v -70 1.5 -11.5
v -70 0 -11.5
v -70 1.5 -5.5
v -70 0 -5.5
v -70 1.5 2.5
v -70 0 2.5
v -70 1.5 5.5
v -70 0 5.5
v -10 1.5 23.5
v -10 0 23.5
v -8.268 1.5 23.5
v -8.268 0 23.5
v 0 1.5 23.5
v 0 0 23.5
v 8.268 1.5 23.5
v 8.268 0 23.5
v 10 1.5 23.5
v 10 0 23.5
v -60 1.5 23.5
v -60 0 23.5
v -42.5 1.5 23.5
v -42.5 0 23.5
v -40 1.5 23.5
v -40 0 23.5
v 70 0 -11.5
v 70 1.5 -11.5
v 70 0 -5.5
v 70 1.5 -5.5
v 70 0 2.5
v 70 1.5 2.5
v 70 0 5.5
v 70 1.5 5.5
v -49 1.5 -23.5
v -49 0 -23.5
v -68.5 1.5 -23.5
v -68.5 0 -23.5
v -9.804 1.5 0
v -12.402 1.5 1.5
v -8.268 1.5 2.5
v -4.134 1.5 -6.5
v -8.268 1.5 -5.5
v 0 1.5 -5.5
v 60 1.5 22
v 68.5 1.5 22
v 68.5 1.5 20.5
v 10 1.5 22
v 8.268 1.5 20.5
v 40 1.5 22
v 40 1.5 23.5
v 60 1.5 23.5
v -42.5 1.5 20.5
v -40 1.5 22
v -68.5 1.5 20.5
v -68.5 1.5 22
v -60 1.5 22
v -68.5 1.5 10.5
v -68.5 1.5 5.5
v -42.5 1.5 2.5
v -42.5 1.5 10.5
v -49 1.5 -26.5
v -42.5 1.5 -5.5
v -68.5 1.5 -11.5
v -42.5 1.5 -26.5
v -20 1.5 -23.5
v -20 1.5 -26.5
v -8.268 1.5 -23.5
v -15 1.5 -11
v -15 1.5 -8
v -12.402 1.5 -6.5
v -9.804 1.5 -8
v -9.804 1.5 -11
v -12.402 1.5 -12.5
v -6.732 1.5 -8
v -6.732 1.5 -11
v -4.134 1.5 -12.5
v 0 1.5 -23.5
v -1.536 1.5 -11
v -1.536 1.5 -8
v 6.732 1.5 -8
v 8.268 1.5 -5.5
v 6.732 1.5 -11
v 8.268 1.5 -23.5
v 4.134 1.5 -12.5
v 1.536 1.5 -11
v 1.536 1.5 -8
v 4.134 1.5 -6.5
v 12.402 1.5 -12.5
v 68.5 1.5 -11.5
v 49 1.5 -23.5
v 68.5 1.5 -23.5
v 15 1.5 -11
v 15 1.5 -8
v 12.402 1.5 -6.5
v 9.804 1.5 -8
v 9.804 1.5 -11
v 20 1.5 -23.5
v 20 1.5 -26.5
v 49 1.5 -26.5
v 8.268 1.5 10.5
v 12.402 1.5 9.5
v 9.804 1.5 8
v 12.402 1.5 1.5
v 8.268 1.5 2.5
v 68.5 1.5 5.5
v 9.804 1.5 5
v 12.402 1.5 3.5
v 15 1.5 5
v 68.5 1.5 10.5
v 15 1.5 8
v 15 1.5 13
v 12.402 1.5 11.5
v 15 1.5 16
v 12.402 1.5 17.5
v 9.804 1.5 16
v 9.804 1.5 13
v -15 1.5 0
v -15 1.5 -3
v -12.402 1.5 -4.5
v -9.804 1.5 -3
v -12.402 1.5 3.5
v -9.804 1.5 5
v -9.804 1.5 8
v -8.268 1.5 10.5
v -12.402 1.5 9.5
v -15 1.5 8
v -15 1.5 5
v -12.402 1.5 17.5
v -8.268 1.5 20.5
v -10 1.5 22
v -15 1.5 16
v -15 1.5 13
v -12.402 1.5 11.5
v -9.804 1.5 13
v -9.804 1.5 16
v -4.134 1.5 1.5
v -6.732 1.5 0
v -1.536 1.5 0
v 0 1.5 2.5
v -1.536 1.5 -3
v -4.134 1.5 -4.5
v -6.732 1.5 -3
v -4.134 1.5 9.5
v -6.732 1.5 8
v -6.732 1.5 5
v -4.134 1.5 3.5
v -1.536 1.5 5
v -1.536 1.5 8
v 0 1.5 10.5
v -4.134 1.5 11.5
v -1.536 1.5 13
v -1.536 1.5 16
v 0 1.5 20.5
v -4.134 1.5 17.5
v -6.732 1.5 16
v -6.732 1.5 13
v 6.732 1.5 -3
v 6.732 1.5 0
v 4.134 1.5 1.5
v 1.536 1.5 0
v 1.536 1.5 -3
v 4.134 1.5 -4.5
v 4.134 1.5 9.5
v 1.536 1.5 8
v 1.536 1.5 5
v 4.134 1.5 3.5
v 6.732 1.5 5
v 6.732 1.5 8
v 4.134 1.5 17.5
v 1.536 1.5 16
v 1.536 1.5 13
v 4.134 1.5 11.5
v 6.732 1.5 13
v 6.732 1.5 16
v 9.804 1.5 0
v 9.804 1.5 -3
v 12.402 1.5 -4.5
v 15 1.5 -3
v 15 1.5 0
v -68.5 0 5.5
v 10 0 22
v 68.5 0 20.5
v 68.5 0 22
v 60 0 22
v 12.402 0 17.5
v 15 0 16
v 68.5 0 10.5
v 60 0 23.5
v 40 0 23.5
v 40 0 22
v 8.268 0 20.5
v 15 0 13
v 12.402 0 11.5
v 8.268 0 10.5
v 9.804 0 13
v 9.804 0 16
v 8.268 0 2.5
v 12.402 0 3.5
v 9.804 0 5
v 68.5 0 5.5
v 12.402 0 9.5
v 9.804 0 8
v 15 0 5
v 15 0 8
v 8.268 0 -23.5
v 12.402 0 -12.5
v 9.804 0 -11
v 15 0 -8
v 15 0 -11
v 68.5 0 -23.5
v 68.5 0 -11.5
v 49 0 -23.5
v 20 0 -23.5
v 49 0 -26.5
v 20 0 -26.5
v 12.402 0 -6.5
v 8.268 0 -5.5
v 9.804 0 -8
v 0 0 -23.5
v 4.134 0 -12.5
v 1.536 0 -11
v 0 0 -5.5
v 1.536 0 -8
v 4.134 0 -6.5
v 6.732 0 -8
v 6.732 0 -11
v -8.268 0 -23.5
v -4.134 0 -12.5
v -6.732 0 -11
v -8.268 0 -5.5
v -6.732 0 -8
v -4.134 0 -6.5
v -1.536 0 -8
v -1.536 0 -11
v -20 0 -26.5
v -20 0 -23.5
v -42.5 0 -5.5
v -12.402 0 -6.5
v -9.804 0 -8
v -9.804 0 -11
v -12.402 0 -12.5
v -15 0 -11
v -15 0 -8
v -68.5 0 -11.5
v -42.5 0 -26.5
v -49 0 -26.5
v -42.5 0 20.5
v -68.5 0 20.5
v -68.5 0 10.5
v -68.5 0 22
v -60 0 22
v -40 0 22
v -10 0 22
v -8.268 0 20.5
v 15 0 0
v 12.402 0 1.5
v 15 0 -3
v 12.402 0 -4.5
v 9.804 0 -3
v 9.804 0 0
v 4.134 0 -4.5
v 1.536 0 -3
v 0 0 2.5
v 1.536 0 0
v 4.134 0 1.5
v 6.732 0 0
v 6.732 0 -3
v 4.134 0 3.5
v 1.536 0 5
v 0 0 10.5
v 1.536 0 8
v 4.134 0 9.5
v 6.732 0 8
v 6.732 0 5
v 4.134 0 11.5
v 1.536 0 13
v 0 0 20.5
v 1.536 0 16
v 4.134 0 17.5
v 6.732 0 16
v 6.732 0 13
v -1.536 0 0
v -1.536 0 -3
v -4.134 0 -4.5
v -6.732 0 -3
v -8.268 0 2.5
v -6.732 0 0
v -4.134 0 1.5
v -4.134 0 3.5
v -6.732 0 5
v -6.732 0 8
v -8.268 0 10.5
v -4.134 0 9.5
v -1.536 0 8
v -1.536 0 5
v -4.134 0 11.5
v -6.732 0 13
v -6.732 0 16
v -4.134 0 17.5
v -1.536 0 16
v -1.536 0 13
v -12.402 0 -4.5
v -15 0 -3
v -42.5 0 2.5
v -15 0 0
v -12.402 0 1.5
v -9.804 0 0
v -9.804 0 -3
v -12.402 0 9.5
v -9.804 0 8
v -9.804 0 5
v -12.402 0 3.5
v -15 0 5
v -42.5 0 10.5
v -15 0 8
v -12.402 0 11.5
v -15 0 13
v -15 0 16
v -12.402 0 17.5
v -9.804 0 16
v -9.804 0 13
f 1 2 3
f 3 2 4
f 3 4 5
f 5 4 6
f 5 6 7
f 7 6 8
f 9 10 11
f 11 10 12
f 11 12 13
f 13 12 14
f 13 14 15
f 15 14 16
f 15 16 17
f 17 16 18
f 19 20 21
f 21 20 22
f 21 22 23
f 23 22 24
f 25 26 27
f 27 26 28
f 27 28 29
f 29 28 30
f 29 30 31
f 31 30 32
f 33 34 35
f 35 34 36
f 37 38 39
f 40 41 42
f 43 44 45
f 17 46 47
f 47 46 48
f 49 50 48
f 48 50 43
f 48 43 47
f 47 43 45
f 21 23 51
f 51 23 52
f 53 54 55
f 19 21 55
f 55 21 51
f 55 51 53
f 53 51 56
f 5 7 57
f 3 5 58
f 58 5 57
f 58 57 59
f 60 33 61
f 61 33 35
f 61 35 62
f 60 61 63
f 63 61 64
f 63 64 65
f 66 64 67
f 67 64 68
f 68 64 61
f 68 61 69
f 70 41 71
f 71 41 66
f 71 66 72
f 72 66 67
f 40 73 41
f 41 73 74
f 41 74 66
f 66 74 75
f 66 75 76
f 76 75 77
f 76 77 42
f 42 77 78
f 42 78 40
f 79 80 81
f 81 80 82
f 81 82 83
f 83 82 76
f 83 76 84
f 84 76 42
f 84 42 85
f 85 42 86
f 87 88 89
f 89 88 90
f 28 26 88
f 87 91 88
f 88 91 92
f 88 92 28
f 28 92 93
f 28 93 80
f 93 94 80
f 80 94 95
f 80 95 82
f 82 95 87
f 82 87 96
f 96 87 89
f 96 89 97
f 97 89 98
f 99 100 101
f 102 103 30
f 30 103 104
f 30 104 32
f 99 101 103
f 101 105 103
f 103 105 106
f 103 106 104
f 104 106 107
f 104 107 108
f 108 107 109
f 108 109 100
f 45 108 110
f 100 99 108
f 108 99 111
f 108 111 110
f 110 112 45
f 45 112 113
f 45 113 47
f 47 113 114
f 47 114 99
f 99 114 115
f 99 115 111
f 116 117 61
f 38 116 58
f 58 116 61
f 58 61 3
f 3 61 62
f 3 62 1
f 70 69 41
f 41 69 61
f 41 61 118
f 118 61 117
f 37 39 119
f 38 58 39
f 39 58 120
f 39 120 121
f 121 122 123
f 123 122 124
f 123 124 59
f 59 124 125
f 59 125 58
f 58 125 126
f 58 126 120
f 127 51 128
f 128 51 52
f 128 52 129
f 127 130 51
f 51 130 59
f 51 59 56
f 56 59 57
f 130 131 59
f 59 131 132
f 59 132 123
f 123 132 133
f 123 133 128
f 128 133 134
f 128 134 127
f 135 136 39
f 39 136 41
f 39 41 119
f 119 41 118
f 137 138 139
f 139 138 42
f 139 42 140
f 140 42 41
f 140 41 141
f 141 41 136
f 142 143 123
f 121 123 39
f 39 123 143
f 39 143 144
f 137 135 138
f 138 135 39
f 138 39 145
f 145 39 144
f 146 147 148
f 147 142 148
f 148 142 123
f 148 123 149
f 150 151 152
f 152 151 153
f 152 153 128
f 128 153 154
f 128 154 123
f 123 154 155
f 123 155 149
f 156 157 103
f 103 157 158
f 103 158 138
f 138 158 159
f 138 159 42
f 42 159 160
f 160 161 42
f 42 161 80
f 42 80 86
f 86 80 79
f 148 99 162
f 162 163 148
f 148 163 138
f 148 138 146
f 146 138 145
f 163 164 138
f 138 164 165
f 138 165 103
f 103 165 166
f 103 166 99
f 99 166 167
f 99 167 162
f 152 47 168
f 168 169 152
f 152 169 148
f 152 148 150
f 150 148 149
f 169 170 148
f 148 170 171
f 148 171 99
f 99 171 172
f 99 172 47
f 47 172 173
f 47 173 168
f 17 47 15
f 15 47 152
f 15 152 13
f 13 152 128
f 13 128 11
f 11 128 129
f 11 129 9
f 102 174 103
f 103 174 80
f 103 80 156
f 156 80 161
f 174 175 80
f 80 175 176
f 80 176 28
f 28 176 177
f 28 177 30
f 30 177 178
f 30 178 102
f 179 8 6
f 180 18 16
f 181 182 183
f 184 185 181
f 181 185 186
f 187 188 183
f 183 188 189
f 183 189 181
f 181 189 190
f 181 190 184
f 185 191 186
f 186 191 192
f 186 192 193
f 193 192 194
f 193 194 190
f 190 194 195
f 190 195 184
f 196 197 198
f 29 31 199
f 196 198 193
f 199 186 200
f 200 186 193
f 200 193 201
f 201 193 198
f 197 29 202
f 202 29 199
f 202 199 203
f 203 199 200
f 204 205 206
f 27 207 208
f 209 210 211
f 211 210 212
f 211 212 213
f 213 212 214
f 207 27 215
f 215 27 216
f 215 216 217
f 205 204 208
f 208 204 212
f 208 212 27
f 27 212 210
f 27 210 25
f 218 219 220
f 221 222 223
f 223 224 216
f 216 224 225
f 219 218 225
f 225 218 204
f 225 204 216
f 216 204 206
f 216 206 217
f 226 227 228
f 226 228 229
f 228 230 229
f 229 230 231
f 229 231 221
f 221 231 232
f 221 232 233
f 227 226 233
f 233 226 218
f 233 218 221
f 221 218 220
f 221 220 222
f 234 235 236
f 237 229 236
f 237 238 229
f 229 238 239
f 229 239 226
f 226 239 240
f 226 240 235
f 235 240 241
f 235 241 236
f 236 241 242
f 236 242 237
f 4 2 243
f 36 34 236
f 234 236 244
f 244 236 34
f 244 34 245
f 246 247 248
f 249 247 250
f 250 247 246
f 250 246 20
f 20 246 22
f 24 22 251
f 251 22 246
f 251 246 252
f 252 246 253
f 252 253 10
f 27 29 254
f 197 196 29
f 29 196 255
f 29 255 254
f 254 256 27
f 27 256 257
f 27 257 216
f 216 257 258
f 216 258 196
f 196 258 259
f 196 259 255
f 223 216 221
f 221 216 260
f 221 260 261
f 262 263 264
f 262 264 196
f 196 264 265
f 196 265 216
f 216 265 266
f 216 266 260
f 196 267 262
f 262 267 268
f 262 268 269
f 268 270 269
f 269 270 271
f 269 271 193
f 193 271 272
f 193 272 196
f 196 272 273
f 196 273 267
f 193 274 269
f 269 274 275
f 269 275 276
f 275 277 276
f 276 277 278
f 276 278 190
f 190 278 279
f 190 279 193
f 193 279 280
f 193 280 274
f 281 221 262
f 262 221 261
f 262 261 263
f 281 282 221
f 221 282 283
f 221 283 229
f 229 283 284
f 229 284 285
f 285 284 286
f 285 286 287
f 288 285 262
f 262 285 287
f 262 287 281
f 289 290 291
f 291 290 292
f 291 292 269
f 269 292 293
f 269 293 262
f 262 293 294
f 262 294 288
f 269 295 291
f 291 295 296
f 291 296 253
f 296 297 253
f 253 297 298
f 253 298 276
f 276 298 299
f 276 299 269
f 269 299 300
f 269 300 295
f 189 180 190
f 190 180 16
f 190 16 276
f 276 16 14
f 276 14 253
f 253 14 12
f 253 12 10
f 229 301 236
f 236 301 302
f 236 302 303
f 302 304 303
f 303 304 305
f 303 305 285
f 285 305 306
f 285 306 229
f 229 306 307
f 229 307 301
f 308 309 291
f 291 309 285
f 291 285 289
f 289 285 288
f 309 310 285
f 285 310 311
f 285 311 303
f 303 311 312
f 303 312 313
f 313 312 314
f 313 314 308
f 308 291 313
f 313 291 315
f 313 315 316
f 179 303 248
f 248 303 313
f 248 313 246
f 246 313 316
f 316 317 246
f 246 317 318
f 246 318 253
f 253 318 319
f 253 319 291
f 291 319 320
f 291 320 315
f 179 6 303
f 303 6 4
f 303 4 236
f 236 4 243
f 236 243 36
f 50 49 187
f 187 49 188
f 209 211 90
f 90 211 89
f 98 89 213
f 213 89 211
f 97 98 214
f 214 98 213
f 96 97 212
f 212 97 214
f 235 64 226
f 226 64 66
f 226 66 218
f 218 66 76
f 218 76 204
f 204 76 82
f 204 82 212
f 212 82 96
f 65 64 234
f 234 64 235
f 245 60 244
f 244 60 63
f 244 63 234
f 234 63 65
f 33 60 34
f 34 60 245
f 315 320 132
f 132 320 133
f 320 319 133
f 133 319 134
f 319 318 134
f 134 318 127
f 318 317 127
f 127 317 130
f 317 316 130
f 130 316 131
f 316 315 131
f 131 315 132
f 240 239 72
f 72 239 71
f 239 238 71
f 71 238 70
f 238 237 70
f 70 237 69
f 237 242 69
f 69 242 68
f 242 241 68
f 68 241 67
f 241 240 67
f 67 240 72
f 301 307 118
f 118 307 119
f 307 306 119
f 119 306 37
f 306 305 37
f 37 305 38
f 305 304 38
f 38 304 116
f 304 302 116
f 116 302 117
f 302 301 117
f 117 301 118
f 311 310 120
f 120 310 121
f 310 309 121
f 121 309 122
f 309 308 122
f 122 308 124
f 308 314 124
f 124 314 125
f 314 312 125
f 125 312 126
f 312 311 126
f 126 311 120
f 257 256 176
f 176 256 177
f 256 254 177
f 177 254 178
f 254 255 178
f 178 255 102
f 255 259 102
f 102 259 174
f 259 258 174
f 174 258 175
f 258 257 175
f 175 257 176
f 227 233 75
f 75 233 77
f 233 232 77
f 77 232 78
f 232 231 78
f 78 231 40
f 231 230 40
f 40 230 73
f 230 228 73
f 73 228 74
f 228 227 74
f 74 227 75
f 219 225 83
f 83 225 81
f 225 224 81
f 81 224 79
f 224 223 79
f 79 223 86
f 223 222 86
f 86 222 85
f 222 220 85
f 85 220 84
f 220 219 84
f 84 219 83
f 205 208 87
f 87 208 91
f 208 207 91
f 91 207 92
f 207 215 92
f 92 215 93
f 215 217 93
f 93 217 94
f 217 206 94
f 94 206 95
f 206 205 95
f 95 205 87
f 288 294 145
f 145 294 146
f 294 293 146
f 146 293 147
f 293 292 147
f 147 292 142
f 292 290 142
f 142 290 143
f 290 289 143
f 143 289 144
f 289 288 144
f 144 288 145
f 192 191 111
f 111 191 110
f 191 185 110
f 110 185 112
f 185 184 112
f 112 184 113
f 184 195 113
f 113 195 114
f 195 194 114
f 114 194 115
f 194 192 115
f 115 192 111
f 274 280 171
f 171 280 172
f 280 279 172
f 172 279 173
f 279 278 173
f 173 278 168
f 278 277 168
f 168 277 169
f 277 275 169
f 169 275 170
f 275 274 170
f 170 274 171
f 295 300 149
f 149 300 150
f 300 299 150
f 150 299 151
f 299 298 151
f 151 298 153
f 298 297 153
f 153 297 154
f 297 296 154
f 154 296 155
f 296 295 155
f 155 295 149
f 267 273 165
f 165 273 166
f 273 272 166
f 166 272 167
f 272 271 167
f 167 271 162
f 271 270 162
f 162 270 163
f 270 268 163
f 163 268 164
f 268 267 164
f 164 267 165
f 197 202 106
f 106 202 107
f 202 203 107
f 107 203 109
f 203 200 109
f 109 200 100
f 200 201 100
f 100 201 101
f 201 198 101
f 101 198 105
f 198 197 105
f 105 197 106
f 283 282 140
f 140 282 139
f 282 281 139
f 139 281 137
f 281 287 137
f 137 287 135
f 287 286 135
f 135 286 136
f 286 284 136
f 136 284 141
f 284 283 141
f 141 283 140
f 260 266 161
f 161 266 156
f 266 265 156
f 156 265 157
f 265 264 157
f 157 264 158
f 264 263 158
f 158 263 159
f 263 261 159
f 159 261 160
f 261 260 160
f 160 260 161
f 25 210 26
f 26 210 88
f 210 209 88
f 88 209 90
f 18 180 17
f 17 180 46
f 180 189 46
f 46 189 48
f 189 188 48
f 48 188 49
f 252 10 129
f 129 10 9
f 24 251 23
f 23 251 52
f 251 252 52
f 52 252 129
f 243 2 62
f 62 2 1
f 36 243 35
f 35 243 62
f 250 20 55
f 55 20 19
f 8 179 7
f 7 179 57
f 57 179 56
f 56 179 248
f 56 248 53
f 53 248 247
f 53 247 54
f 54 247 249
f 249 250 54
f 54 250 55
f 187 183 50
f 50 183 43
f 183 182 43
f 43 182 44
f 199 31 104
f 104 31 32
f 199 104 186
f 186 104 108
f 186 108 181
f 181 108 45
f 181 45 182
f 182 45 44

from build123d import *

# Parameters (mm, degrees)
BOSS_EXTRUDE1_DEPTH = 1.5
CUT_EXTRUDE1_DEPTH  = 75.863208587
SKETCH6_W           = 1.5
SKETCH6_H           = 12
SKETCH6_H_2         = 16.5
SKETCH6_H_3         = 1.5
SKETCH6_W_2         = 8.5
SKETCH6_W_3         = 30
CUT_EXTRUDE2_DEPTH  = 75.863208587


with BuildPart() as part:
    # Sketch2 → Boss-Extrude1 (new body)
    with BuildSketch(Plane(origin=(0, 0, 0), x_dir=(1, 0, 0), z_dir=(0, 1, 0))):
        Polygon((-70, 23.5), (-49, 23.5), (-49, 26.5), (-20, 26.5), (-20, 23.5), (20, 23.5), (20, 26.5), (49, 26.5), (49, 23.5), (70, 23.5), (70, -23.5), (-70, -23.5), align=None)
    extrude(amount=BOSS_EXTRUDE1_DEPTH)

    # Sketch5 → Cut-Extrude1 (cut, through all)
    with BuildSketch(Plane(origin=(0, 1.5, 0), x_dir=(1, 0, 0), z_dir=(0, 1, 0))):
        Polygon((-4.133974596, -11.5), (-6.732050808, -13), (-6.732050808, -16), (-4.133974596, -17.5), (-1.535898385, -16), (-1.535898385, -13), align=None)
        Polygon((-12.401923789, -11.5), (-15, -13), (-15, -16), (-12.401923789, -17.5), (-9.803847577, -16), (-9.803847577, -13), align=None)
        Polygon((4.133974596, -11.5), (1.535898385, -13), (1.535898385, -16), (4.133974596, -17.5), (6.732050808, -16), (6.732050808, -13), align=None)
        Polygon((12.401923789, -11.5), (9.803847577, -13), (9.803847577, -16), (12.401923789, -17.5), (15, -16), (15, -13), align=None)
        Polygon((-4.133974596, -3.5), (-6.732050808, -5), (-6.732050808, -8), (-4.133974596, -9.5), (-1.535898385, -8), (-1.535898385, -5), align=None)
        Polygon((4.133974596, -3.5), (1.535898385, -5), (1.535898385, -8), (4.133974596, -9.5), (6.732050808, -8), (6.732050808, -5), align=None)
        Polygon((12.401923789, -3.5), (9.803847577, -5), (9.803847577, -8), (12.401923789, -9.5), (15, -8), (15, -5), align=None)
        Polygon((-4.133974596, 4.5), (-6.732050808, 3), (-6.732050808, 0), (-4.133974596, -1.5), (-1.535898385, 0), (-1.535898385, 3), align=None)
        Polygon((4.133974596, 4.5), (1.535898385, 3), (1.535898385, 0), (4.133974596, -1.5), (6.732050808, 0), (6.732050808, 3), align=None)
        Polygon((12.401923789, 4.5), (9.803847577, 3), (9.803847577, 0), (12.401923789, -1.5), (15, 0), (15, 3), align=None)
        Polygon((-4.133974596, 12.5), (-6.732050808, 11), (-6.732050808, 8), (-4.133974596, 6.5), (-1.535898385, 8), (-1.535898385, 11), align=None)
        Polygon((4.133974596, 12.5), (1.535898385, 11), (1.535898385, 8), (4.133974596, 6.5), (6.732050808, 8), (6.732050808, 11), align=None)
        Polygon((12.401923789, 12.5), (9.803847577, 11), (9.803847577, 8), (12.401923789, 6.5), (15, 8), (15, 11), align=None)
        Polygon((-12.401923789, -3.5), (-15, -5), (-15, -8), (-12.401923789, -9.5), (-9.803847577, -8), (-9.803847577, -5), align=None)
        Polygon((-12.401923789, 4.5), (-15, 3), (-15, 0), (-12.401923789, -1.5), (-9.803847577, 0), (-9.803847577, 3), align=None)
        Polygon((-12.401923789, 12.5), (-15, 11), (-15, 8), (-12.401923789, 6.5), (-9.803847577, 8), (-9.803847577, 11), align=None)
    extrude(amount=-CUT_EXTRUDE1_DEPTH, mode=Mode.SUBTRACT)

    # Sketch6 → Cut-Extrude2 (cut, through all)
    with BuildSketch(Plane(origin=(0, 1.5, 0), x_dir=(1, 0, 0), z_dir=(0, 1, 0))):
        with Locations((69.25, 17.5)):
            Rectangle(SKETCH6_W, SKETCH6_H)
        with Locations((69.25, -13.75)):
            Rectangle(SKETCH6_W, SKETCH6_H_2)
        with Locations((69.25, -22.75)):
            Rectangle(SKETCH6_W, SKETCH6_H_3)
        with Locations((64.25, -22.75)):
            Rectangle(SKETCH6_W_2, SKETCH6_H_3)
        with Locations((25, -22.75)):
            Rectangle(SKETCH6_W_3, SKETCH6_H_3)
        with Locations((-25, -22.75)):
            Rectangle(SKETCH6_W_3, SKETCH6_H_3)
        with Locations((-69.25, 17.5)):
            Rectangle(SKETCH6_W, SKETCH6_H)
        with Locations((-69.25, -13.75)):
            Rectangle(SKETCH6_W, SKETCH6_H_2)
        with Locations((-69.25, -22.75)):
            Rectangle(SKETCH6_W, SKETCH6_H_3)
        with Locations((-64.25, -22.75)):
            Rectangle(SKETCH6_W_2, SKETCH6_H_3)
    extrude(amount=-CUT_EXTRUDE2_DEPTH, mode=Mode.SUBTRACT)


solid = part.part
